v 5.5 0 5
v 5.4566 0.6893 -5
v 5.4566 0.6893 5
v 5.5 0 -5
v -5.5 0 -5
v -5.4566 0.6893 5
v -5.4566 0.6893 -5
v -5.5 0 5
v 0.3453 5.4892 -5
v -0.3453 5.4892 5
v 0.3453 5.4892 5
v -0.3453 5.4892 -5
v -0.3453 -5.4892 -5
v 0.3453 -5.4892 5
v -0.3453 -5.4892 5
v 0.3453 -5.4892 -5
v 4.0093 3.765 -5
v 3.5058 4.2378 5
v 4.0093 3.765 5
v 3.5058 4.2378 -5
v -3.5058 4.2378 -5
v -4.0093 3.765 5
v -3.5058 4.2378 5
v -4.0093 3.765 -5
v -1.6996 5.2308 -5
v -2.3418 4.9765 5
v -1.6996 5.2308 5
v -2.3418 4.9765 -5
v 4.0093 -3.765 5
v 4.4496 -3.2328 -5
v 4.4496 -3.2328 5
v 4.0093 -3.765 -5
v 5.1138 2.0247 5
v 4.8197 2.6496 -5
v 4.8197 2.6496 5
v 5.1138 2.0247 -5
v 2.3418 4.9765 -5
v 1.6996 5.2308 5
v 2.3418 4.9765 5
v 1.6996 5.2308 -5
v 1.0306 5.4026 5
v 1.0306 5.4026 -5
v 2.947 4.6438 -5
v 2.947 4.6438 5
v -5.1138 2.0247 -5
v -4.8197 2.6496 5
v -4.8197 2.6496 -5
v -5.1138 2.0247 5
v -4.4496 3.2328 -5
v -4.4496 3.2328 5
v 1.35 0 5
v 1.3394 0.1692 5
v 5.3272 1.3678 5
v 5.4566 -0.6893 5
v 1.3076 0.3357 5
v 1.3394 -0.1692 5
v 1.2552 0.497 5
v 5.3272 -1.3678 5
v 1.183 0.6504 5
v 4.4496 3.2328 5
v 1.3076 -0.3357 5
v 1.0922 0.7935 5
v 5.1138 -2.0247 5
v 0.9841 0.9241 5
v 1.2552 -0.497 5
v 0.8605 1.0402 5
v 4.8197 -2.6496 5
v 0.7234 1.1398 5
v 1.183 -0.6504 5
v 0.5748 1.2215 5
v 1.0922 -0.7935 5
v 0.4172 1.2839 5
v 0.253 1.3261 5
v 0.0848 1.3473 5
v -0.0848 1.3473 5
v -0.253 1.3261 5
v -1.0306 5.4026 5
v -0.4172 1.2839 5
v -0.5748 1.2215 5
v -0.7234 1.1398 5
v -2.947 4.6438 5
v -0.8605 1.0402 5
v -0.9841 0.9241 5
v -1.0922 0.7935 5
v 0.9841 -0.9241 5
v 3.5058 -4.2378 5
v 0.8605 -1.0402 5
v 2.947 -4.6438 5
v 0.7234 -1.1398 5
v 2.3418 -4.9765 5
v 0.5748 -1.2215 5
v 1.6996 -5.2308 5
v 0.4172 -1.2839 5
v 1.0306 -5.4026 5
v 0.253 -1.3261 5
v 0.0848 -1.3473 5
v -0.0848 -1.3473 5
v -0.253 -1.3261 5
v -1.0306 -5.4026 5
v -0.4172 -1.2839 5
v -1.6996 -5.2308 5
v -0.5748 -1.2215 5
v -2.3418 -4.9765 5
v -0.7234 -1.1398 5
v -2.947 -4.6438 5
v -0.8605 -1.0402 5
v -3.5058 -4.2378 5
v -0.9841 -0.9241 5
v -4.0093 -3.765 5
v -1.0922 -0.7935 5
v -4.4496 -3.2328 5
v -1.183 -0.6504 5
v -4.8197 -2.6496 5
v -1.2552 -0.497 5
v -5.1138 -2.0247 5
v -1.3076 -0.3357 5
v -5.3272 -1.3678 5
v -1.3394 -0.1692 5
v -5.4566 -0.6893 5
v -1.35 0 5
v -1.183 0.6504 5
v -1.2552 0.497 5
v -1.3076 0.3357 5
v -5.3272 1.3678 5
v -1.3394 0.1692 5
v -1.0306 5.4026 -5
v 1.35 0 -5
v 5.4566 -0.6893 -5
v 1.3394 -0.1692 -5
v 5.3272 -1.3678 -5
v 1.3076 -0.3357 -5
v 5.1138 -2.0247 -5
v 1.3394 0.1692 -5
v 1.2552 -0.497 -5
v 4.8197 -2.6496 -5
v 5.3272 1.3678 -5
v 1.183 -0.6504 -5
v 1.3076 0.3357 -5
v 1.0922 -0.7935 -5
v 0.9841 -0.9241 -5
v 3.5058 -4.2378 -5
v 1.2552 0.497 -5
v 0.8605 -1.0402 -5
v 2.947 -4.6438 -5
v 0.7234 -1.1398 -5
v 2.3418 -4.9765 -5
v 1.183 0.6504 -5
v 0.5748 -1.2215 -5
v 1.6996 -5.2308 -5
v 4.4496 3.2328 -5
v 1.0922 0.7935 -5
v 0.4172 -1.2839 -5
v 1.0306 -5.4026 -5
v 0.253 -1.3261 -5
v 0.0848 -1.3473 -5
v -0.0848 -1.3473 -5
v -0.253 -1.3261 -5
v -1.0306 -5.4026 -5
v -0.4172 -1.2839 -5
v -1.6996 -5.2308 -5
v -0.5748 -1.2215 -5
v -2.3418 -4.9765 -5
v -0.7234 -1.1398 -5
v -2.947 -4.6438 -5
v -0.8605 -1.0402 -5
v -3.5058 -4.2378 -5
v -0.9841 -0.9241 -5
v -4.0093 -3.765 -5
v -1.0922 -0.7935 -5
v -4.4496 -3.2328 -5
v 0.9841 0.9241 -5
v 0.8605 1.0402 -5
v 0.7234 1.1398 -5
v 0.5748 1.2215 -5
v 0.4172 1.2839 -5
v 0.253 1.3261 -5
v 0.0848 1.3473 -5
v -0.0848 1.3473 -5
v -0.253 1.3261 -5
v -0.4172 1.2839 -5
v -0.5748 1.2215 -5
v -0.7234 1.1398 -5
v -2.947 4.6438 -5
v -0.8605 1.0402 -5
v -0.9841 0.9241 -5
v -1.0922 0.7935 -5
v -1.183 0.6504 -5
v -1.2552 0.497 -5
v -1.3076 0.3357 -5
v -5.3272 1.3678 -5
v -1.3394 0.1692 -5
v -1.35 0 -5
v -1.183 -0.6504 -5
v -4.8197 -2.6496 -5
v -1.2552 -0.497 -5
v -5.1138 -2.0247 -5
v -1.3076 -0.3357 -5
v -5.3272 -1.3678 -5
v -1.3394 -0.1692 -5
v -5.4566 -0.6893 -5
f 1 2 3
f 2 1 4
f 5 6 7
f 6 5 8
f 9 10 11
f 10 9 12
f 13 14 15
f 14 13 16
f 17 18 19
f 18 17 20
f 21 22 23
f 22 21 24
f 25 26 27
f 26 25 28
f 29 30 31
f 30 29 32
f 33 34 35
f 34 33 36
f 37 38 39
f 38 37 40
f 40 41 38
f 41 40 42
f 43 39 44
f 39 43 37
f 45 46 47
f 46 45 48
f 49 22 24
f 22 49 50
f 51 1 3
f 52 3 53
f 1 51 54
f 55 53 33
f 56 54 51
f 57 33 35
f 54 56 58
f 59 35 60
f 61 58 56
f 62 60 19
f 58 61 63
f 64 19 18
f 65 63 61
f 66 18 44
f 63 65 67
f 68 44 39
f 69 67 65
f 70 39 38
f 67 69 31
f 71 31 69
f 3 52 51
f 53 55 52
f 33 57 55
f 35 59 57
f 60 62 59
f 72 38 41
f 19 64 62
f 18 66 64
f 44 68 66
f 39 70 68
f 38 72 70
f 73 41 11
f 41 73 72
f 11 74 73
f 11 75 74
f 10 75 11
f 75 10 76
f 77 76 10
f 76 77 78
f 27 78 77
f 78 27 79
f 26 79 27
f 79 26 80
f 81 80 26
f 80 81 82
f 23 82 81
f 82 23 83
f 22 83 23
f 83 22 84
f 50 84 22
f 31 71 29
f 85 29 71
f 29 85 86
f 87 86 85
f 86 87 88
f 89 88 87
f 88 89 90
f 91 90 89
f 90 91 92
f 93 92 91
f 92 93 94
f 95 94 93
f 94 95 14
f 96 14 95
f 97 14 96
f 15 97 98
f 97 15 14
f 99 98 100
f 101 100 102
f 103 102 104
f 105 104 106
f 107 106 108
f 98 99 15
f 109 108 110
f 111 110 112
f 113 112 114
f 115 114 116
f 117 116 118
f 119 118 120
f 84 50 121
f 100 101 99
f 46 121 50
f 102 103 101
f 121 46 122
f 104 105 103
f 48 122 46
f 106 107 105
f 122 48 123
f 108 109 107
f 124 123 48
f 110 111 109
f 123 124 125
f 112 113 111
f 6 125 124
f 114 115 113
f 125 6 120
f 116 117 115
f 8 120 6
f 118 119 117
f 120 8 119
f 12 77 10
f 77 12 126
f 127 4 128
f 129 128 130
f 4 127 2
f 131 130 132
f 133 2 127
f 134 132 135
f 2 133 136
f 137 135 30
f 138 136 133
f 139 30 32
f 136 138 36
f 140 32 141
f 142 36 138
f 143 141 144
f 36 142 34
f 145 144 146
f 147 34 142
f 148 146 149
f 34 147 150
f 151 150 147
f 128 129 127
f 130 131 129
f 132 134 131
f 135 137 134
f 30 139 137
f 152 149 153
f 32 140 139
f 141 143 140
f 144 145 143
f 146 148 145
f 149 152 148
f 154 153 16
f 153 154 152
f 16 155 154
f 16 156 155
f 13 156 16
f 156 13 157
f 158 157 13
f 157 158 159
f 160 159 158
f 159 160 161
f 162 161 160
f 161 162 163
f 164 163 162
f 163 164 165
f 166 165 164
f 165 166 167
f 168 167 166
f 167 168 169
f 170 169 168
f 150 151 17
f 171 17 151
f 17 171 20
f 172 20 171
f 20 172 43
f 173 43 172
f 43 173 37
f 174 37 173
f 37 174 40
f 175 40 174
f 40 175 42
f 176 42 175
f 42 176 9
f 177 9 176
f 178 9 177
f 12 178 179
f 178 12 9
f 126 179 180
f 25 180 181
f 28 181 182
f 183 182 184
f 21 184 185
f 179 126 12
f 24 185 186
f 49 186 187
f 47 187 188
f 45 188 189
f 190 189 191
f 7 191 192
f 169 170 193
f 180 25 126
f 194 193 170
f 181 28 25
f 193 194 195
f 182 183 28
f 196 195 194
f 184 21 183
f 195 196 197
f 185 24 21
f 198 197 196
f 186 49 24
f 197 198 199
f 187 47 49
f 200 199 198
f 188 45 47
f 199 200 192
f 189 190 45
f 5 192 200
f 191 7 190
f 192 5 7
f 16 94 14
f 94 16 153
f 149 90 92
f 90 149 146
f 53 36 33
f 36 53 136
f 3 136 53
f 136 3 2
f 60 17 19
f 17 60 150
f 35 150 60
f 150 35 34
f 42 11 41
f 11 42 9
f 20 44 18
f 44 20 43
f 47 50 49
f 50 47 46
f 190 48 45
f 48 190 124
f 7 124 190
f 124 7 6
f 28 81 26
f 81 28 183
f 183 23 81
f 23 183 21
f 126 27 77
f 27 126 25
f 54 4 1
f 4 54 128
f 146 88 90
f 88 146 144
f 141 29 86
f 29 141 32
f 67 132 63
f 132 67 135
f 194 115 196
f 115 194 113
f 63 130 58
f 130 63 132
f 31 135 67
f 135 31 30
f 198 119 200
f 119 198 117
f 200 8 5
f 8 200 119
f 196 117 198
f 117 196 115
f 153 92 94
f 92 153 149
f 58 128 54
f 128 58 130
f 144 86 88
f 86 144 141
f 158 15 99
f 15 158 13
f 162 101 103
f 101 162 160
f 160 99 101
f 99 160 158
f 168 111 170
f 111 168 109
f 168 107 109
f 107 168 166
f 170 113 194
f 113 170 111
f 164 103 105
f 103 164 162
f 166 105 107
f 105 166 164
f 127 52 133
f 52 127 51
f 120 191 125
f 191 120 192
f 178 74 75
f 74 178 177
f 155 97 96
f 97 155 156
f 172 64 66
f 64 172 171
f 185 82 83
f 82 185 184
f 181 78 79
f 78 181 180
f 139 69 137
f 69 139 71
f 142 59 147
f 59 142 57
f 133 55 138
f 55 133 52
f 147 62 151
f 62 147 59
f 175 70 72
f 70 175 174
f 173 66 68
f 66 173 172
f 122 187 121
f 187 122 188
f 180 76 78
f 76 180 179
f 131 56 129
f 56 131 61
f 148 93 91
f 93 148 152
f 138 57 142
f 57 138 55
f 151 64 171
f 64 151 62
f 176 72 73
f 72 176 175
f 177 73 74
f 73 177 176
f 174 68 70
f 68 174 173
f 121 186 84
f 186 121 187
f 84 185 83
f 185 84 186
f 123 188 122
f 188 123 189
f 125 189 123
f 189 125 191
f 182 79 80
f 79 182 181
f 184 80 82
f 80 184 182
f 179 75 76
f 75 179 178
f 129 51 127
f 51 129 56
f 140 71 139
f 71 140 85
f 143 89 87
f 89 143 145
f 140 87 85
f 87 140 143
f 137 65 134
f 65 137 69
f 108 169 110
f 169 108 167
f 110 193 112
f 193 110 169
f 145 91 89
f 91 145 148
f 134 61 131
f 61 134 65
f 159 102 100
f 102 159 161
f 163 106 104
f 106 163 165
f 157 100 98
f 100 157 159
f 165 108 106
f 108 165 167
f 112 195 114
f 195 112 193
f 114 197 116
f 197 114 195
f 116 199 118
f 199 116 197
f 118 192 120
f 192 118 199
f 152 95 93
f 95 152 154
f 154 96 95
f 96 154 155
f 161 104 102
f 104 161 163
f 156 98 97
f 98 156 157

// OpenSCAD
$fn = 50;


difference() {
	union() {
		translate(v = [0, 0, -5.0000000000]) {
			cylinder(h = 10, r = 5.5000000000);
		}
	}
	union() {
		translate(v = [0, 0, -100.0000000000]) {
			cylinder(h = 200, r = 1.3500000000);
		}
	}
}
